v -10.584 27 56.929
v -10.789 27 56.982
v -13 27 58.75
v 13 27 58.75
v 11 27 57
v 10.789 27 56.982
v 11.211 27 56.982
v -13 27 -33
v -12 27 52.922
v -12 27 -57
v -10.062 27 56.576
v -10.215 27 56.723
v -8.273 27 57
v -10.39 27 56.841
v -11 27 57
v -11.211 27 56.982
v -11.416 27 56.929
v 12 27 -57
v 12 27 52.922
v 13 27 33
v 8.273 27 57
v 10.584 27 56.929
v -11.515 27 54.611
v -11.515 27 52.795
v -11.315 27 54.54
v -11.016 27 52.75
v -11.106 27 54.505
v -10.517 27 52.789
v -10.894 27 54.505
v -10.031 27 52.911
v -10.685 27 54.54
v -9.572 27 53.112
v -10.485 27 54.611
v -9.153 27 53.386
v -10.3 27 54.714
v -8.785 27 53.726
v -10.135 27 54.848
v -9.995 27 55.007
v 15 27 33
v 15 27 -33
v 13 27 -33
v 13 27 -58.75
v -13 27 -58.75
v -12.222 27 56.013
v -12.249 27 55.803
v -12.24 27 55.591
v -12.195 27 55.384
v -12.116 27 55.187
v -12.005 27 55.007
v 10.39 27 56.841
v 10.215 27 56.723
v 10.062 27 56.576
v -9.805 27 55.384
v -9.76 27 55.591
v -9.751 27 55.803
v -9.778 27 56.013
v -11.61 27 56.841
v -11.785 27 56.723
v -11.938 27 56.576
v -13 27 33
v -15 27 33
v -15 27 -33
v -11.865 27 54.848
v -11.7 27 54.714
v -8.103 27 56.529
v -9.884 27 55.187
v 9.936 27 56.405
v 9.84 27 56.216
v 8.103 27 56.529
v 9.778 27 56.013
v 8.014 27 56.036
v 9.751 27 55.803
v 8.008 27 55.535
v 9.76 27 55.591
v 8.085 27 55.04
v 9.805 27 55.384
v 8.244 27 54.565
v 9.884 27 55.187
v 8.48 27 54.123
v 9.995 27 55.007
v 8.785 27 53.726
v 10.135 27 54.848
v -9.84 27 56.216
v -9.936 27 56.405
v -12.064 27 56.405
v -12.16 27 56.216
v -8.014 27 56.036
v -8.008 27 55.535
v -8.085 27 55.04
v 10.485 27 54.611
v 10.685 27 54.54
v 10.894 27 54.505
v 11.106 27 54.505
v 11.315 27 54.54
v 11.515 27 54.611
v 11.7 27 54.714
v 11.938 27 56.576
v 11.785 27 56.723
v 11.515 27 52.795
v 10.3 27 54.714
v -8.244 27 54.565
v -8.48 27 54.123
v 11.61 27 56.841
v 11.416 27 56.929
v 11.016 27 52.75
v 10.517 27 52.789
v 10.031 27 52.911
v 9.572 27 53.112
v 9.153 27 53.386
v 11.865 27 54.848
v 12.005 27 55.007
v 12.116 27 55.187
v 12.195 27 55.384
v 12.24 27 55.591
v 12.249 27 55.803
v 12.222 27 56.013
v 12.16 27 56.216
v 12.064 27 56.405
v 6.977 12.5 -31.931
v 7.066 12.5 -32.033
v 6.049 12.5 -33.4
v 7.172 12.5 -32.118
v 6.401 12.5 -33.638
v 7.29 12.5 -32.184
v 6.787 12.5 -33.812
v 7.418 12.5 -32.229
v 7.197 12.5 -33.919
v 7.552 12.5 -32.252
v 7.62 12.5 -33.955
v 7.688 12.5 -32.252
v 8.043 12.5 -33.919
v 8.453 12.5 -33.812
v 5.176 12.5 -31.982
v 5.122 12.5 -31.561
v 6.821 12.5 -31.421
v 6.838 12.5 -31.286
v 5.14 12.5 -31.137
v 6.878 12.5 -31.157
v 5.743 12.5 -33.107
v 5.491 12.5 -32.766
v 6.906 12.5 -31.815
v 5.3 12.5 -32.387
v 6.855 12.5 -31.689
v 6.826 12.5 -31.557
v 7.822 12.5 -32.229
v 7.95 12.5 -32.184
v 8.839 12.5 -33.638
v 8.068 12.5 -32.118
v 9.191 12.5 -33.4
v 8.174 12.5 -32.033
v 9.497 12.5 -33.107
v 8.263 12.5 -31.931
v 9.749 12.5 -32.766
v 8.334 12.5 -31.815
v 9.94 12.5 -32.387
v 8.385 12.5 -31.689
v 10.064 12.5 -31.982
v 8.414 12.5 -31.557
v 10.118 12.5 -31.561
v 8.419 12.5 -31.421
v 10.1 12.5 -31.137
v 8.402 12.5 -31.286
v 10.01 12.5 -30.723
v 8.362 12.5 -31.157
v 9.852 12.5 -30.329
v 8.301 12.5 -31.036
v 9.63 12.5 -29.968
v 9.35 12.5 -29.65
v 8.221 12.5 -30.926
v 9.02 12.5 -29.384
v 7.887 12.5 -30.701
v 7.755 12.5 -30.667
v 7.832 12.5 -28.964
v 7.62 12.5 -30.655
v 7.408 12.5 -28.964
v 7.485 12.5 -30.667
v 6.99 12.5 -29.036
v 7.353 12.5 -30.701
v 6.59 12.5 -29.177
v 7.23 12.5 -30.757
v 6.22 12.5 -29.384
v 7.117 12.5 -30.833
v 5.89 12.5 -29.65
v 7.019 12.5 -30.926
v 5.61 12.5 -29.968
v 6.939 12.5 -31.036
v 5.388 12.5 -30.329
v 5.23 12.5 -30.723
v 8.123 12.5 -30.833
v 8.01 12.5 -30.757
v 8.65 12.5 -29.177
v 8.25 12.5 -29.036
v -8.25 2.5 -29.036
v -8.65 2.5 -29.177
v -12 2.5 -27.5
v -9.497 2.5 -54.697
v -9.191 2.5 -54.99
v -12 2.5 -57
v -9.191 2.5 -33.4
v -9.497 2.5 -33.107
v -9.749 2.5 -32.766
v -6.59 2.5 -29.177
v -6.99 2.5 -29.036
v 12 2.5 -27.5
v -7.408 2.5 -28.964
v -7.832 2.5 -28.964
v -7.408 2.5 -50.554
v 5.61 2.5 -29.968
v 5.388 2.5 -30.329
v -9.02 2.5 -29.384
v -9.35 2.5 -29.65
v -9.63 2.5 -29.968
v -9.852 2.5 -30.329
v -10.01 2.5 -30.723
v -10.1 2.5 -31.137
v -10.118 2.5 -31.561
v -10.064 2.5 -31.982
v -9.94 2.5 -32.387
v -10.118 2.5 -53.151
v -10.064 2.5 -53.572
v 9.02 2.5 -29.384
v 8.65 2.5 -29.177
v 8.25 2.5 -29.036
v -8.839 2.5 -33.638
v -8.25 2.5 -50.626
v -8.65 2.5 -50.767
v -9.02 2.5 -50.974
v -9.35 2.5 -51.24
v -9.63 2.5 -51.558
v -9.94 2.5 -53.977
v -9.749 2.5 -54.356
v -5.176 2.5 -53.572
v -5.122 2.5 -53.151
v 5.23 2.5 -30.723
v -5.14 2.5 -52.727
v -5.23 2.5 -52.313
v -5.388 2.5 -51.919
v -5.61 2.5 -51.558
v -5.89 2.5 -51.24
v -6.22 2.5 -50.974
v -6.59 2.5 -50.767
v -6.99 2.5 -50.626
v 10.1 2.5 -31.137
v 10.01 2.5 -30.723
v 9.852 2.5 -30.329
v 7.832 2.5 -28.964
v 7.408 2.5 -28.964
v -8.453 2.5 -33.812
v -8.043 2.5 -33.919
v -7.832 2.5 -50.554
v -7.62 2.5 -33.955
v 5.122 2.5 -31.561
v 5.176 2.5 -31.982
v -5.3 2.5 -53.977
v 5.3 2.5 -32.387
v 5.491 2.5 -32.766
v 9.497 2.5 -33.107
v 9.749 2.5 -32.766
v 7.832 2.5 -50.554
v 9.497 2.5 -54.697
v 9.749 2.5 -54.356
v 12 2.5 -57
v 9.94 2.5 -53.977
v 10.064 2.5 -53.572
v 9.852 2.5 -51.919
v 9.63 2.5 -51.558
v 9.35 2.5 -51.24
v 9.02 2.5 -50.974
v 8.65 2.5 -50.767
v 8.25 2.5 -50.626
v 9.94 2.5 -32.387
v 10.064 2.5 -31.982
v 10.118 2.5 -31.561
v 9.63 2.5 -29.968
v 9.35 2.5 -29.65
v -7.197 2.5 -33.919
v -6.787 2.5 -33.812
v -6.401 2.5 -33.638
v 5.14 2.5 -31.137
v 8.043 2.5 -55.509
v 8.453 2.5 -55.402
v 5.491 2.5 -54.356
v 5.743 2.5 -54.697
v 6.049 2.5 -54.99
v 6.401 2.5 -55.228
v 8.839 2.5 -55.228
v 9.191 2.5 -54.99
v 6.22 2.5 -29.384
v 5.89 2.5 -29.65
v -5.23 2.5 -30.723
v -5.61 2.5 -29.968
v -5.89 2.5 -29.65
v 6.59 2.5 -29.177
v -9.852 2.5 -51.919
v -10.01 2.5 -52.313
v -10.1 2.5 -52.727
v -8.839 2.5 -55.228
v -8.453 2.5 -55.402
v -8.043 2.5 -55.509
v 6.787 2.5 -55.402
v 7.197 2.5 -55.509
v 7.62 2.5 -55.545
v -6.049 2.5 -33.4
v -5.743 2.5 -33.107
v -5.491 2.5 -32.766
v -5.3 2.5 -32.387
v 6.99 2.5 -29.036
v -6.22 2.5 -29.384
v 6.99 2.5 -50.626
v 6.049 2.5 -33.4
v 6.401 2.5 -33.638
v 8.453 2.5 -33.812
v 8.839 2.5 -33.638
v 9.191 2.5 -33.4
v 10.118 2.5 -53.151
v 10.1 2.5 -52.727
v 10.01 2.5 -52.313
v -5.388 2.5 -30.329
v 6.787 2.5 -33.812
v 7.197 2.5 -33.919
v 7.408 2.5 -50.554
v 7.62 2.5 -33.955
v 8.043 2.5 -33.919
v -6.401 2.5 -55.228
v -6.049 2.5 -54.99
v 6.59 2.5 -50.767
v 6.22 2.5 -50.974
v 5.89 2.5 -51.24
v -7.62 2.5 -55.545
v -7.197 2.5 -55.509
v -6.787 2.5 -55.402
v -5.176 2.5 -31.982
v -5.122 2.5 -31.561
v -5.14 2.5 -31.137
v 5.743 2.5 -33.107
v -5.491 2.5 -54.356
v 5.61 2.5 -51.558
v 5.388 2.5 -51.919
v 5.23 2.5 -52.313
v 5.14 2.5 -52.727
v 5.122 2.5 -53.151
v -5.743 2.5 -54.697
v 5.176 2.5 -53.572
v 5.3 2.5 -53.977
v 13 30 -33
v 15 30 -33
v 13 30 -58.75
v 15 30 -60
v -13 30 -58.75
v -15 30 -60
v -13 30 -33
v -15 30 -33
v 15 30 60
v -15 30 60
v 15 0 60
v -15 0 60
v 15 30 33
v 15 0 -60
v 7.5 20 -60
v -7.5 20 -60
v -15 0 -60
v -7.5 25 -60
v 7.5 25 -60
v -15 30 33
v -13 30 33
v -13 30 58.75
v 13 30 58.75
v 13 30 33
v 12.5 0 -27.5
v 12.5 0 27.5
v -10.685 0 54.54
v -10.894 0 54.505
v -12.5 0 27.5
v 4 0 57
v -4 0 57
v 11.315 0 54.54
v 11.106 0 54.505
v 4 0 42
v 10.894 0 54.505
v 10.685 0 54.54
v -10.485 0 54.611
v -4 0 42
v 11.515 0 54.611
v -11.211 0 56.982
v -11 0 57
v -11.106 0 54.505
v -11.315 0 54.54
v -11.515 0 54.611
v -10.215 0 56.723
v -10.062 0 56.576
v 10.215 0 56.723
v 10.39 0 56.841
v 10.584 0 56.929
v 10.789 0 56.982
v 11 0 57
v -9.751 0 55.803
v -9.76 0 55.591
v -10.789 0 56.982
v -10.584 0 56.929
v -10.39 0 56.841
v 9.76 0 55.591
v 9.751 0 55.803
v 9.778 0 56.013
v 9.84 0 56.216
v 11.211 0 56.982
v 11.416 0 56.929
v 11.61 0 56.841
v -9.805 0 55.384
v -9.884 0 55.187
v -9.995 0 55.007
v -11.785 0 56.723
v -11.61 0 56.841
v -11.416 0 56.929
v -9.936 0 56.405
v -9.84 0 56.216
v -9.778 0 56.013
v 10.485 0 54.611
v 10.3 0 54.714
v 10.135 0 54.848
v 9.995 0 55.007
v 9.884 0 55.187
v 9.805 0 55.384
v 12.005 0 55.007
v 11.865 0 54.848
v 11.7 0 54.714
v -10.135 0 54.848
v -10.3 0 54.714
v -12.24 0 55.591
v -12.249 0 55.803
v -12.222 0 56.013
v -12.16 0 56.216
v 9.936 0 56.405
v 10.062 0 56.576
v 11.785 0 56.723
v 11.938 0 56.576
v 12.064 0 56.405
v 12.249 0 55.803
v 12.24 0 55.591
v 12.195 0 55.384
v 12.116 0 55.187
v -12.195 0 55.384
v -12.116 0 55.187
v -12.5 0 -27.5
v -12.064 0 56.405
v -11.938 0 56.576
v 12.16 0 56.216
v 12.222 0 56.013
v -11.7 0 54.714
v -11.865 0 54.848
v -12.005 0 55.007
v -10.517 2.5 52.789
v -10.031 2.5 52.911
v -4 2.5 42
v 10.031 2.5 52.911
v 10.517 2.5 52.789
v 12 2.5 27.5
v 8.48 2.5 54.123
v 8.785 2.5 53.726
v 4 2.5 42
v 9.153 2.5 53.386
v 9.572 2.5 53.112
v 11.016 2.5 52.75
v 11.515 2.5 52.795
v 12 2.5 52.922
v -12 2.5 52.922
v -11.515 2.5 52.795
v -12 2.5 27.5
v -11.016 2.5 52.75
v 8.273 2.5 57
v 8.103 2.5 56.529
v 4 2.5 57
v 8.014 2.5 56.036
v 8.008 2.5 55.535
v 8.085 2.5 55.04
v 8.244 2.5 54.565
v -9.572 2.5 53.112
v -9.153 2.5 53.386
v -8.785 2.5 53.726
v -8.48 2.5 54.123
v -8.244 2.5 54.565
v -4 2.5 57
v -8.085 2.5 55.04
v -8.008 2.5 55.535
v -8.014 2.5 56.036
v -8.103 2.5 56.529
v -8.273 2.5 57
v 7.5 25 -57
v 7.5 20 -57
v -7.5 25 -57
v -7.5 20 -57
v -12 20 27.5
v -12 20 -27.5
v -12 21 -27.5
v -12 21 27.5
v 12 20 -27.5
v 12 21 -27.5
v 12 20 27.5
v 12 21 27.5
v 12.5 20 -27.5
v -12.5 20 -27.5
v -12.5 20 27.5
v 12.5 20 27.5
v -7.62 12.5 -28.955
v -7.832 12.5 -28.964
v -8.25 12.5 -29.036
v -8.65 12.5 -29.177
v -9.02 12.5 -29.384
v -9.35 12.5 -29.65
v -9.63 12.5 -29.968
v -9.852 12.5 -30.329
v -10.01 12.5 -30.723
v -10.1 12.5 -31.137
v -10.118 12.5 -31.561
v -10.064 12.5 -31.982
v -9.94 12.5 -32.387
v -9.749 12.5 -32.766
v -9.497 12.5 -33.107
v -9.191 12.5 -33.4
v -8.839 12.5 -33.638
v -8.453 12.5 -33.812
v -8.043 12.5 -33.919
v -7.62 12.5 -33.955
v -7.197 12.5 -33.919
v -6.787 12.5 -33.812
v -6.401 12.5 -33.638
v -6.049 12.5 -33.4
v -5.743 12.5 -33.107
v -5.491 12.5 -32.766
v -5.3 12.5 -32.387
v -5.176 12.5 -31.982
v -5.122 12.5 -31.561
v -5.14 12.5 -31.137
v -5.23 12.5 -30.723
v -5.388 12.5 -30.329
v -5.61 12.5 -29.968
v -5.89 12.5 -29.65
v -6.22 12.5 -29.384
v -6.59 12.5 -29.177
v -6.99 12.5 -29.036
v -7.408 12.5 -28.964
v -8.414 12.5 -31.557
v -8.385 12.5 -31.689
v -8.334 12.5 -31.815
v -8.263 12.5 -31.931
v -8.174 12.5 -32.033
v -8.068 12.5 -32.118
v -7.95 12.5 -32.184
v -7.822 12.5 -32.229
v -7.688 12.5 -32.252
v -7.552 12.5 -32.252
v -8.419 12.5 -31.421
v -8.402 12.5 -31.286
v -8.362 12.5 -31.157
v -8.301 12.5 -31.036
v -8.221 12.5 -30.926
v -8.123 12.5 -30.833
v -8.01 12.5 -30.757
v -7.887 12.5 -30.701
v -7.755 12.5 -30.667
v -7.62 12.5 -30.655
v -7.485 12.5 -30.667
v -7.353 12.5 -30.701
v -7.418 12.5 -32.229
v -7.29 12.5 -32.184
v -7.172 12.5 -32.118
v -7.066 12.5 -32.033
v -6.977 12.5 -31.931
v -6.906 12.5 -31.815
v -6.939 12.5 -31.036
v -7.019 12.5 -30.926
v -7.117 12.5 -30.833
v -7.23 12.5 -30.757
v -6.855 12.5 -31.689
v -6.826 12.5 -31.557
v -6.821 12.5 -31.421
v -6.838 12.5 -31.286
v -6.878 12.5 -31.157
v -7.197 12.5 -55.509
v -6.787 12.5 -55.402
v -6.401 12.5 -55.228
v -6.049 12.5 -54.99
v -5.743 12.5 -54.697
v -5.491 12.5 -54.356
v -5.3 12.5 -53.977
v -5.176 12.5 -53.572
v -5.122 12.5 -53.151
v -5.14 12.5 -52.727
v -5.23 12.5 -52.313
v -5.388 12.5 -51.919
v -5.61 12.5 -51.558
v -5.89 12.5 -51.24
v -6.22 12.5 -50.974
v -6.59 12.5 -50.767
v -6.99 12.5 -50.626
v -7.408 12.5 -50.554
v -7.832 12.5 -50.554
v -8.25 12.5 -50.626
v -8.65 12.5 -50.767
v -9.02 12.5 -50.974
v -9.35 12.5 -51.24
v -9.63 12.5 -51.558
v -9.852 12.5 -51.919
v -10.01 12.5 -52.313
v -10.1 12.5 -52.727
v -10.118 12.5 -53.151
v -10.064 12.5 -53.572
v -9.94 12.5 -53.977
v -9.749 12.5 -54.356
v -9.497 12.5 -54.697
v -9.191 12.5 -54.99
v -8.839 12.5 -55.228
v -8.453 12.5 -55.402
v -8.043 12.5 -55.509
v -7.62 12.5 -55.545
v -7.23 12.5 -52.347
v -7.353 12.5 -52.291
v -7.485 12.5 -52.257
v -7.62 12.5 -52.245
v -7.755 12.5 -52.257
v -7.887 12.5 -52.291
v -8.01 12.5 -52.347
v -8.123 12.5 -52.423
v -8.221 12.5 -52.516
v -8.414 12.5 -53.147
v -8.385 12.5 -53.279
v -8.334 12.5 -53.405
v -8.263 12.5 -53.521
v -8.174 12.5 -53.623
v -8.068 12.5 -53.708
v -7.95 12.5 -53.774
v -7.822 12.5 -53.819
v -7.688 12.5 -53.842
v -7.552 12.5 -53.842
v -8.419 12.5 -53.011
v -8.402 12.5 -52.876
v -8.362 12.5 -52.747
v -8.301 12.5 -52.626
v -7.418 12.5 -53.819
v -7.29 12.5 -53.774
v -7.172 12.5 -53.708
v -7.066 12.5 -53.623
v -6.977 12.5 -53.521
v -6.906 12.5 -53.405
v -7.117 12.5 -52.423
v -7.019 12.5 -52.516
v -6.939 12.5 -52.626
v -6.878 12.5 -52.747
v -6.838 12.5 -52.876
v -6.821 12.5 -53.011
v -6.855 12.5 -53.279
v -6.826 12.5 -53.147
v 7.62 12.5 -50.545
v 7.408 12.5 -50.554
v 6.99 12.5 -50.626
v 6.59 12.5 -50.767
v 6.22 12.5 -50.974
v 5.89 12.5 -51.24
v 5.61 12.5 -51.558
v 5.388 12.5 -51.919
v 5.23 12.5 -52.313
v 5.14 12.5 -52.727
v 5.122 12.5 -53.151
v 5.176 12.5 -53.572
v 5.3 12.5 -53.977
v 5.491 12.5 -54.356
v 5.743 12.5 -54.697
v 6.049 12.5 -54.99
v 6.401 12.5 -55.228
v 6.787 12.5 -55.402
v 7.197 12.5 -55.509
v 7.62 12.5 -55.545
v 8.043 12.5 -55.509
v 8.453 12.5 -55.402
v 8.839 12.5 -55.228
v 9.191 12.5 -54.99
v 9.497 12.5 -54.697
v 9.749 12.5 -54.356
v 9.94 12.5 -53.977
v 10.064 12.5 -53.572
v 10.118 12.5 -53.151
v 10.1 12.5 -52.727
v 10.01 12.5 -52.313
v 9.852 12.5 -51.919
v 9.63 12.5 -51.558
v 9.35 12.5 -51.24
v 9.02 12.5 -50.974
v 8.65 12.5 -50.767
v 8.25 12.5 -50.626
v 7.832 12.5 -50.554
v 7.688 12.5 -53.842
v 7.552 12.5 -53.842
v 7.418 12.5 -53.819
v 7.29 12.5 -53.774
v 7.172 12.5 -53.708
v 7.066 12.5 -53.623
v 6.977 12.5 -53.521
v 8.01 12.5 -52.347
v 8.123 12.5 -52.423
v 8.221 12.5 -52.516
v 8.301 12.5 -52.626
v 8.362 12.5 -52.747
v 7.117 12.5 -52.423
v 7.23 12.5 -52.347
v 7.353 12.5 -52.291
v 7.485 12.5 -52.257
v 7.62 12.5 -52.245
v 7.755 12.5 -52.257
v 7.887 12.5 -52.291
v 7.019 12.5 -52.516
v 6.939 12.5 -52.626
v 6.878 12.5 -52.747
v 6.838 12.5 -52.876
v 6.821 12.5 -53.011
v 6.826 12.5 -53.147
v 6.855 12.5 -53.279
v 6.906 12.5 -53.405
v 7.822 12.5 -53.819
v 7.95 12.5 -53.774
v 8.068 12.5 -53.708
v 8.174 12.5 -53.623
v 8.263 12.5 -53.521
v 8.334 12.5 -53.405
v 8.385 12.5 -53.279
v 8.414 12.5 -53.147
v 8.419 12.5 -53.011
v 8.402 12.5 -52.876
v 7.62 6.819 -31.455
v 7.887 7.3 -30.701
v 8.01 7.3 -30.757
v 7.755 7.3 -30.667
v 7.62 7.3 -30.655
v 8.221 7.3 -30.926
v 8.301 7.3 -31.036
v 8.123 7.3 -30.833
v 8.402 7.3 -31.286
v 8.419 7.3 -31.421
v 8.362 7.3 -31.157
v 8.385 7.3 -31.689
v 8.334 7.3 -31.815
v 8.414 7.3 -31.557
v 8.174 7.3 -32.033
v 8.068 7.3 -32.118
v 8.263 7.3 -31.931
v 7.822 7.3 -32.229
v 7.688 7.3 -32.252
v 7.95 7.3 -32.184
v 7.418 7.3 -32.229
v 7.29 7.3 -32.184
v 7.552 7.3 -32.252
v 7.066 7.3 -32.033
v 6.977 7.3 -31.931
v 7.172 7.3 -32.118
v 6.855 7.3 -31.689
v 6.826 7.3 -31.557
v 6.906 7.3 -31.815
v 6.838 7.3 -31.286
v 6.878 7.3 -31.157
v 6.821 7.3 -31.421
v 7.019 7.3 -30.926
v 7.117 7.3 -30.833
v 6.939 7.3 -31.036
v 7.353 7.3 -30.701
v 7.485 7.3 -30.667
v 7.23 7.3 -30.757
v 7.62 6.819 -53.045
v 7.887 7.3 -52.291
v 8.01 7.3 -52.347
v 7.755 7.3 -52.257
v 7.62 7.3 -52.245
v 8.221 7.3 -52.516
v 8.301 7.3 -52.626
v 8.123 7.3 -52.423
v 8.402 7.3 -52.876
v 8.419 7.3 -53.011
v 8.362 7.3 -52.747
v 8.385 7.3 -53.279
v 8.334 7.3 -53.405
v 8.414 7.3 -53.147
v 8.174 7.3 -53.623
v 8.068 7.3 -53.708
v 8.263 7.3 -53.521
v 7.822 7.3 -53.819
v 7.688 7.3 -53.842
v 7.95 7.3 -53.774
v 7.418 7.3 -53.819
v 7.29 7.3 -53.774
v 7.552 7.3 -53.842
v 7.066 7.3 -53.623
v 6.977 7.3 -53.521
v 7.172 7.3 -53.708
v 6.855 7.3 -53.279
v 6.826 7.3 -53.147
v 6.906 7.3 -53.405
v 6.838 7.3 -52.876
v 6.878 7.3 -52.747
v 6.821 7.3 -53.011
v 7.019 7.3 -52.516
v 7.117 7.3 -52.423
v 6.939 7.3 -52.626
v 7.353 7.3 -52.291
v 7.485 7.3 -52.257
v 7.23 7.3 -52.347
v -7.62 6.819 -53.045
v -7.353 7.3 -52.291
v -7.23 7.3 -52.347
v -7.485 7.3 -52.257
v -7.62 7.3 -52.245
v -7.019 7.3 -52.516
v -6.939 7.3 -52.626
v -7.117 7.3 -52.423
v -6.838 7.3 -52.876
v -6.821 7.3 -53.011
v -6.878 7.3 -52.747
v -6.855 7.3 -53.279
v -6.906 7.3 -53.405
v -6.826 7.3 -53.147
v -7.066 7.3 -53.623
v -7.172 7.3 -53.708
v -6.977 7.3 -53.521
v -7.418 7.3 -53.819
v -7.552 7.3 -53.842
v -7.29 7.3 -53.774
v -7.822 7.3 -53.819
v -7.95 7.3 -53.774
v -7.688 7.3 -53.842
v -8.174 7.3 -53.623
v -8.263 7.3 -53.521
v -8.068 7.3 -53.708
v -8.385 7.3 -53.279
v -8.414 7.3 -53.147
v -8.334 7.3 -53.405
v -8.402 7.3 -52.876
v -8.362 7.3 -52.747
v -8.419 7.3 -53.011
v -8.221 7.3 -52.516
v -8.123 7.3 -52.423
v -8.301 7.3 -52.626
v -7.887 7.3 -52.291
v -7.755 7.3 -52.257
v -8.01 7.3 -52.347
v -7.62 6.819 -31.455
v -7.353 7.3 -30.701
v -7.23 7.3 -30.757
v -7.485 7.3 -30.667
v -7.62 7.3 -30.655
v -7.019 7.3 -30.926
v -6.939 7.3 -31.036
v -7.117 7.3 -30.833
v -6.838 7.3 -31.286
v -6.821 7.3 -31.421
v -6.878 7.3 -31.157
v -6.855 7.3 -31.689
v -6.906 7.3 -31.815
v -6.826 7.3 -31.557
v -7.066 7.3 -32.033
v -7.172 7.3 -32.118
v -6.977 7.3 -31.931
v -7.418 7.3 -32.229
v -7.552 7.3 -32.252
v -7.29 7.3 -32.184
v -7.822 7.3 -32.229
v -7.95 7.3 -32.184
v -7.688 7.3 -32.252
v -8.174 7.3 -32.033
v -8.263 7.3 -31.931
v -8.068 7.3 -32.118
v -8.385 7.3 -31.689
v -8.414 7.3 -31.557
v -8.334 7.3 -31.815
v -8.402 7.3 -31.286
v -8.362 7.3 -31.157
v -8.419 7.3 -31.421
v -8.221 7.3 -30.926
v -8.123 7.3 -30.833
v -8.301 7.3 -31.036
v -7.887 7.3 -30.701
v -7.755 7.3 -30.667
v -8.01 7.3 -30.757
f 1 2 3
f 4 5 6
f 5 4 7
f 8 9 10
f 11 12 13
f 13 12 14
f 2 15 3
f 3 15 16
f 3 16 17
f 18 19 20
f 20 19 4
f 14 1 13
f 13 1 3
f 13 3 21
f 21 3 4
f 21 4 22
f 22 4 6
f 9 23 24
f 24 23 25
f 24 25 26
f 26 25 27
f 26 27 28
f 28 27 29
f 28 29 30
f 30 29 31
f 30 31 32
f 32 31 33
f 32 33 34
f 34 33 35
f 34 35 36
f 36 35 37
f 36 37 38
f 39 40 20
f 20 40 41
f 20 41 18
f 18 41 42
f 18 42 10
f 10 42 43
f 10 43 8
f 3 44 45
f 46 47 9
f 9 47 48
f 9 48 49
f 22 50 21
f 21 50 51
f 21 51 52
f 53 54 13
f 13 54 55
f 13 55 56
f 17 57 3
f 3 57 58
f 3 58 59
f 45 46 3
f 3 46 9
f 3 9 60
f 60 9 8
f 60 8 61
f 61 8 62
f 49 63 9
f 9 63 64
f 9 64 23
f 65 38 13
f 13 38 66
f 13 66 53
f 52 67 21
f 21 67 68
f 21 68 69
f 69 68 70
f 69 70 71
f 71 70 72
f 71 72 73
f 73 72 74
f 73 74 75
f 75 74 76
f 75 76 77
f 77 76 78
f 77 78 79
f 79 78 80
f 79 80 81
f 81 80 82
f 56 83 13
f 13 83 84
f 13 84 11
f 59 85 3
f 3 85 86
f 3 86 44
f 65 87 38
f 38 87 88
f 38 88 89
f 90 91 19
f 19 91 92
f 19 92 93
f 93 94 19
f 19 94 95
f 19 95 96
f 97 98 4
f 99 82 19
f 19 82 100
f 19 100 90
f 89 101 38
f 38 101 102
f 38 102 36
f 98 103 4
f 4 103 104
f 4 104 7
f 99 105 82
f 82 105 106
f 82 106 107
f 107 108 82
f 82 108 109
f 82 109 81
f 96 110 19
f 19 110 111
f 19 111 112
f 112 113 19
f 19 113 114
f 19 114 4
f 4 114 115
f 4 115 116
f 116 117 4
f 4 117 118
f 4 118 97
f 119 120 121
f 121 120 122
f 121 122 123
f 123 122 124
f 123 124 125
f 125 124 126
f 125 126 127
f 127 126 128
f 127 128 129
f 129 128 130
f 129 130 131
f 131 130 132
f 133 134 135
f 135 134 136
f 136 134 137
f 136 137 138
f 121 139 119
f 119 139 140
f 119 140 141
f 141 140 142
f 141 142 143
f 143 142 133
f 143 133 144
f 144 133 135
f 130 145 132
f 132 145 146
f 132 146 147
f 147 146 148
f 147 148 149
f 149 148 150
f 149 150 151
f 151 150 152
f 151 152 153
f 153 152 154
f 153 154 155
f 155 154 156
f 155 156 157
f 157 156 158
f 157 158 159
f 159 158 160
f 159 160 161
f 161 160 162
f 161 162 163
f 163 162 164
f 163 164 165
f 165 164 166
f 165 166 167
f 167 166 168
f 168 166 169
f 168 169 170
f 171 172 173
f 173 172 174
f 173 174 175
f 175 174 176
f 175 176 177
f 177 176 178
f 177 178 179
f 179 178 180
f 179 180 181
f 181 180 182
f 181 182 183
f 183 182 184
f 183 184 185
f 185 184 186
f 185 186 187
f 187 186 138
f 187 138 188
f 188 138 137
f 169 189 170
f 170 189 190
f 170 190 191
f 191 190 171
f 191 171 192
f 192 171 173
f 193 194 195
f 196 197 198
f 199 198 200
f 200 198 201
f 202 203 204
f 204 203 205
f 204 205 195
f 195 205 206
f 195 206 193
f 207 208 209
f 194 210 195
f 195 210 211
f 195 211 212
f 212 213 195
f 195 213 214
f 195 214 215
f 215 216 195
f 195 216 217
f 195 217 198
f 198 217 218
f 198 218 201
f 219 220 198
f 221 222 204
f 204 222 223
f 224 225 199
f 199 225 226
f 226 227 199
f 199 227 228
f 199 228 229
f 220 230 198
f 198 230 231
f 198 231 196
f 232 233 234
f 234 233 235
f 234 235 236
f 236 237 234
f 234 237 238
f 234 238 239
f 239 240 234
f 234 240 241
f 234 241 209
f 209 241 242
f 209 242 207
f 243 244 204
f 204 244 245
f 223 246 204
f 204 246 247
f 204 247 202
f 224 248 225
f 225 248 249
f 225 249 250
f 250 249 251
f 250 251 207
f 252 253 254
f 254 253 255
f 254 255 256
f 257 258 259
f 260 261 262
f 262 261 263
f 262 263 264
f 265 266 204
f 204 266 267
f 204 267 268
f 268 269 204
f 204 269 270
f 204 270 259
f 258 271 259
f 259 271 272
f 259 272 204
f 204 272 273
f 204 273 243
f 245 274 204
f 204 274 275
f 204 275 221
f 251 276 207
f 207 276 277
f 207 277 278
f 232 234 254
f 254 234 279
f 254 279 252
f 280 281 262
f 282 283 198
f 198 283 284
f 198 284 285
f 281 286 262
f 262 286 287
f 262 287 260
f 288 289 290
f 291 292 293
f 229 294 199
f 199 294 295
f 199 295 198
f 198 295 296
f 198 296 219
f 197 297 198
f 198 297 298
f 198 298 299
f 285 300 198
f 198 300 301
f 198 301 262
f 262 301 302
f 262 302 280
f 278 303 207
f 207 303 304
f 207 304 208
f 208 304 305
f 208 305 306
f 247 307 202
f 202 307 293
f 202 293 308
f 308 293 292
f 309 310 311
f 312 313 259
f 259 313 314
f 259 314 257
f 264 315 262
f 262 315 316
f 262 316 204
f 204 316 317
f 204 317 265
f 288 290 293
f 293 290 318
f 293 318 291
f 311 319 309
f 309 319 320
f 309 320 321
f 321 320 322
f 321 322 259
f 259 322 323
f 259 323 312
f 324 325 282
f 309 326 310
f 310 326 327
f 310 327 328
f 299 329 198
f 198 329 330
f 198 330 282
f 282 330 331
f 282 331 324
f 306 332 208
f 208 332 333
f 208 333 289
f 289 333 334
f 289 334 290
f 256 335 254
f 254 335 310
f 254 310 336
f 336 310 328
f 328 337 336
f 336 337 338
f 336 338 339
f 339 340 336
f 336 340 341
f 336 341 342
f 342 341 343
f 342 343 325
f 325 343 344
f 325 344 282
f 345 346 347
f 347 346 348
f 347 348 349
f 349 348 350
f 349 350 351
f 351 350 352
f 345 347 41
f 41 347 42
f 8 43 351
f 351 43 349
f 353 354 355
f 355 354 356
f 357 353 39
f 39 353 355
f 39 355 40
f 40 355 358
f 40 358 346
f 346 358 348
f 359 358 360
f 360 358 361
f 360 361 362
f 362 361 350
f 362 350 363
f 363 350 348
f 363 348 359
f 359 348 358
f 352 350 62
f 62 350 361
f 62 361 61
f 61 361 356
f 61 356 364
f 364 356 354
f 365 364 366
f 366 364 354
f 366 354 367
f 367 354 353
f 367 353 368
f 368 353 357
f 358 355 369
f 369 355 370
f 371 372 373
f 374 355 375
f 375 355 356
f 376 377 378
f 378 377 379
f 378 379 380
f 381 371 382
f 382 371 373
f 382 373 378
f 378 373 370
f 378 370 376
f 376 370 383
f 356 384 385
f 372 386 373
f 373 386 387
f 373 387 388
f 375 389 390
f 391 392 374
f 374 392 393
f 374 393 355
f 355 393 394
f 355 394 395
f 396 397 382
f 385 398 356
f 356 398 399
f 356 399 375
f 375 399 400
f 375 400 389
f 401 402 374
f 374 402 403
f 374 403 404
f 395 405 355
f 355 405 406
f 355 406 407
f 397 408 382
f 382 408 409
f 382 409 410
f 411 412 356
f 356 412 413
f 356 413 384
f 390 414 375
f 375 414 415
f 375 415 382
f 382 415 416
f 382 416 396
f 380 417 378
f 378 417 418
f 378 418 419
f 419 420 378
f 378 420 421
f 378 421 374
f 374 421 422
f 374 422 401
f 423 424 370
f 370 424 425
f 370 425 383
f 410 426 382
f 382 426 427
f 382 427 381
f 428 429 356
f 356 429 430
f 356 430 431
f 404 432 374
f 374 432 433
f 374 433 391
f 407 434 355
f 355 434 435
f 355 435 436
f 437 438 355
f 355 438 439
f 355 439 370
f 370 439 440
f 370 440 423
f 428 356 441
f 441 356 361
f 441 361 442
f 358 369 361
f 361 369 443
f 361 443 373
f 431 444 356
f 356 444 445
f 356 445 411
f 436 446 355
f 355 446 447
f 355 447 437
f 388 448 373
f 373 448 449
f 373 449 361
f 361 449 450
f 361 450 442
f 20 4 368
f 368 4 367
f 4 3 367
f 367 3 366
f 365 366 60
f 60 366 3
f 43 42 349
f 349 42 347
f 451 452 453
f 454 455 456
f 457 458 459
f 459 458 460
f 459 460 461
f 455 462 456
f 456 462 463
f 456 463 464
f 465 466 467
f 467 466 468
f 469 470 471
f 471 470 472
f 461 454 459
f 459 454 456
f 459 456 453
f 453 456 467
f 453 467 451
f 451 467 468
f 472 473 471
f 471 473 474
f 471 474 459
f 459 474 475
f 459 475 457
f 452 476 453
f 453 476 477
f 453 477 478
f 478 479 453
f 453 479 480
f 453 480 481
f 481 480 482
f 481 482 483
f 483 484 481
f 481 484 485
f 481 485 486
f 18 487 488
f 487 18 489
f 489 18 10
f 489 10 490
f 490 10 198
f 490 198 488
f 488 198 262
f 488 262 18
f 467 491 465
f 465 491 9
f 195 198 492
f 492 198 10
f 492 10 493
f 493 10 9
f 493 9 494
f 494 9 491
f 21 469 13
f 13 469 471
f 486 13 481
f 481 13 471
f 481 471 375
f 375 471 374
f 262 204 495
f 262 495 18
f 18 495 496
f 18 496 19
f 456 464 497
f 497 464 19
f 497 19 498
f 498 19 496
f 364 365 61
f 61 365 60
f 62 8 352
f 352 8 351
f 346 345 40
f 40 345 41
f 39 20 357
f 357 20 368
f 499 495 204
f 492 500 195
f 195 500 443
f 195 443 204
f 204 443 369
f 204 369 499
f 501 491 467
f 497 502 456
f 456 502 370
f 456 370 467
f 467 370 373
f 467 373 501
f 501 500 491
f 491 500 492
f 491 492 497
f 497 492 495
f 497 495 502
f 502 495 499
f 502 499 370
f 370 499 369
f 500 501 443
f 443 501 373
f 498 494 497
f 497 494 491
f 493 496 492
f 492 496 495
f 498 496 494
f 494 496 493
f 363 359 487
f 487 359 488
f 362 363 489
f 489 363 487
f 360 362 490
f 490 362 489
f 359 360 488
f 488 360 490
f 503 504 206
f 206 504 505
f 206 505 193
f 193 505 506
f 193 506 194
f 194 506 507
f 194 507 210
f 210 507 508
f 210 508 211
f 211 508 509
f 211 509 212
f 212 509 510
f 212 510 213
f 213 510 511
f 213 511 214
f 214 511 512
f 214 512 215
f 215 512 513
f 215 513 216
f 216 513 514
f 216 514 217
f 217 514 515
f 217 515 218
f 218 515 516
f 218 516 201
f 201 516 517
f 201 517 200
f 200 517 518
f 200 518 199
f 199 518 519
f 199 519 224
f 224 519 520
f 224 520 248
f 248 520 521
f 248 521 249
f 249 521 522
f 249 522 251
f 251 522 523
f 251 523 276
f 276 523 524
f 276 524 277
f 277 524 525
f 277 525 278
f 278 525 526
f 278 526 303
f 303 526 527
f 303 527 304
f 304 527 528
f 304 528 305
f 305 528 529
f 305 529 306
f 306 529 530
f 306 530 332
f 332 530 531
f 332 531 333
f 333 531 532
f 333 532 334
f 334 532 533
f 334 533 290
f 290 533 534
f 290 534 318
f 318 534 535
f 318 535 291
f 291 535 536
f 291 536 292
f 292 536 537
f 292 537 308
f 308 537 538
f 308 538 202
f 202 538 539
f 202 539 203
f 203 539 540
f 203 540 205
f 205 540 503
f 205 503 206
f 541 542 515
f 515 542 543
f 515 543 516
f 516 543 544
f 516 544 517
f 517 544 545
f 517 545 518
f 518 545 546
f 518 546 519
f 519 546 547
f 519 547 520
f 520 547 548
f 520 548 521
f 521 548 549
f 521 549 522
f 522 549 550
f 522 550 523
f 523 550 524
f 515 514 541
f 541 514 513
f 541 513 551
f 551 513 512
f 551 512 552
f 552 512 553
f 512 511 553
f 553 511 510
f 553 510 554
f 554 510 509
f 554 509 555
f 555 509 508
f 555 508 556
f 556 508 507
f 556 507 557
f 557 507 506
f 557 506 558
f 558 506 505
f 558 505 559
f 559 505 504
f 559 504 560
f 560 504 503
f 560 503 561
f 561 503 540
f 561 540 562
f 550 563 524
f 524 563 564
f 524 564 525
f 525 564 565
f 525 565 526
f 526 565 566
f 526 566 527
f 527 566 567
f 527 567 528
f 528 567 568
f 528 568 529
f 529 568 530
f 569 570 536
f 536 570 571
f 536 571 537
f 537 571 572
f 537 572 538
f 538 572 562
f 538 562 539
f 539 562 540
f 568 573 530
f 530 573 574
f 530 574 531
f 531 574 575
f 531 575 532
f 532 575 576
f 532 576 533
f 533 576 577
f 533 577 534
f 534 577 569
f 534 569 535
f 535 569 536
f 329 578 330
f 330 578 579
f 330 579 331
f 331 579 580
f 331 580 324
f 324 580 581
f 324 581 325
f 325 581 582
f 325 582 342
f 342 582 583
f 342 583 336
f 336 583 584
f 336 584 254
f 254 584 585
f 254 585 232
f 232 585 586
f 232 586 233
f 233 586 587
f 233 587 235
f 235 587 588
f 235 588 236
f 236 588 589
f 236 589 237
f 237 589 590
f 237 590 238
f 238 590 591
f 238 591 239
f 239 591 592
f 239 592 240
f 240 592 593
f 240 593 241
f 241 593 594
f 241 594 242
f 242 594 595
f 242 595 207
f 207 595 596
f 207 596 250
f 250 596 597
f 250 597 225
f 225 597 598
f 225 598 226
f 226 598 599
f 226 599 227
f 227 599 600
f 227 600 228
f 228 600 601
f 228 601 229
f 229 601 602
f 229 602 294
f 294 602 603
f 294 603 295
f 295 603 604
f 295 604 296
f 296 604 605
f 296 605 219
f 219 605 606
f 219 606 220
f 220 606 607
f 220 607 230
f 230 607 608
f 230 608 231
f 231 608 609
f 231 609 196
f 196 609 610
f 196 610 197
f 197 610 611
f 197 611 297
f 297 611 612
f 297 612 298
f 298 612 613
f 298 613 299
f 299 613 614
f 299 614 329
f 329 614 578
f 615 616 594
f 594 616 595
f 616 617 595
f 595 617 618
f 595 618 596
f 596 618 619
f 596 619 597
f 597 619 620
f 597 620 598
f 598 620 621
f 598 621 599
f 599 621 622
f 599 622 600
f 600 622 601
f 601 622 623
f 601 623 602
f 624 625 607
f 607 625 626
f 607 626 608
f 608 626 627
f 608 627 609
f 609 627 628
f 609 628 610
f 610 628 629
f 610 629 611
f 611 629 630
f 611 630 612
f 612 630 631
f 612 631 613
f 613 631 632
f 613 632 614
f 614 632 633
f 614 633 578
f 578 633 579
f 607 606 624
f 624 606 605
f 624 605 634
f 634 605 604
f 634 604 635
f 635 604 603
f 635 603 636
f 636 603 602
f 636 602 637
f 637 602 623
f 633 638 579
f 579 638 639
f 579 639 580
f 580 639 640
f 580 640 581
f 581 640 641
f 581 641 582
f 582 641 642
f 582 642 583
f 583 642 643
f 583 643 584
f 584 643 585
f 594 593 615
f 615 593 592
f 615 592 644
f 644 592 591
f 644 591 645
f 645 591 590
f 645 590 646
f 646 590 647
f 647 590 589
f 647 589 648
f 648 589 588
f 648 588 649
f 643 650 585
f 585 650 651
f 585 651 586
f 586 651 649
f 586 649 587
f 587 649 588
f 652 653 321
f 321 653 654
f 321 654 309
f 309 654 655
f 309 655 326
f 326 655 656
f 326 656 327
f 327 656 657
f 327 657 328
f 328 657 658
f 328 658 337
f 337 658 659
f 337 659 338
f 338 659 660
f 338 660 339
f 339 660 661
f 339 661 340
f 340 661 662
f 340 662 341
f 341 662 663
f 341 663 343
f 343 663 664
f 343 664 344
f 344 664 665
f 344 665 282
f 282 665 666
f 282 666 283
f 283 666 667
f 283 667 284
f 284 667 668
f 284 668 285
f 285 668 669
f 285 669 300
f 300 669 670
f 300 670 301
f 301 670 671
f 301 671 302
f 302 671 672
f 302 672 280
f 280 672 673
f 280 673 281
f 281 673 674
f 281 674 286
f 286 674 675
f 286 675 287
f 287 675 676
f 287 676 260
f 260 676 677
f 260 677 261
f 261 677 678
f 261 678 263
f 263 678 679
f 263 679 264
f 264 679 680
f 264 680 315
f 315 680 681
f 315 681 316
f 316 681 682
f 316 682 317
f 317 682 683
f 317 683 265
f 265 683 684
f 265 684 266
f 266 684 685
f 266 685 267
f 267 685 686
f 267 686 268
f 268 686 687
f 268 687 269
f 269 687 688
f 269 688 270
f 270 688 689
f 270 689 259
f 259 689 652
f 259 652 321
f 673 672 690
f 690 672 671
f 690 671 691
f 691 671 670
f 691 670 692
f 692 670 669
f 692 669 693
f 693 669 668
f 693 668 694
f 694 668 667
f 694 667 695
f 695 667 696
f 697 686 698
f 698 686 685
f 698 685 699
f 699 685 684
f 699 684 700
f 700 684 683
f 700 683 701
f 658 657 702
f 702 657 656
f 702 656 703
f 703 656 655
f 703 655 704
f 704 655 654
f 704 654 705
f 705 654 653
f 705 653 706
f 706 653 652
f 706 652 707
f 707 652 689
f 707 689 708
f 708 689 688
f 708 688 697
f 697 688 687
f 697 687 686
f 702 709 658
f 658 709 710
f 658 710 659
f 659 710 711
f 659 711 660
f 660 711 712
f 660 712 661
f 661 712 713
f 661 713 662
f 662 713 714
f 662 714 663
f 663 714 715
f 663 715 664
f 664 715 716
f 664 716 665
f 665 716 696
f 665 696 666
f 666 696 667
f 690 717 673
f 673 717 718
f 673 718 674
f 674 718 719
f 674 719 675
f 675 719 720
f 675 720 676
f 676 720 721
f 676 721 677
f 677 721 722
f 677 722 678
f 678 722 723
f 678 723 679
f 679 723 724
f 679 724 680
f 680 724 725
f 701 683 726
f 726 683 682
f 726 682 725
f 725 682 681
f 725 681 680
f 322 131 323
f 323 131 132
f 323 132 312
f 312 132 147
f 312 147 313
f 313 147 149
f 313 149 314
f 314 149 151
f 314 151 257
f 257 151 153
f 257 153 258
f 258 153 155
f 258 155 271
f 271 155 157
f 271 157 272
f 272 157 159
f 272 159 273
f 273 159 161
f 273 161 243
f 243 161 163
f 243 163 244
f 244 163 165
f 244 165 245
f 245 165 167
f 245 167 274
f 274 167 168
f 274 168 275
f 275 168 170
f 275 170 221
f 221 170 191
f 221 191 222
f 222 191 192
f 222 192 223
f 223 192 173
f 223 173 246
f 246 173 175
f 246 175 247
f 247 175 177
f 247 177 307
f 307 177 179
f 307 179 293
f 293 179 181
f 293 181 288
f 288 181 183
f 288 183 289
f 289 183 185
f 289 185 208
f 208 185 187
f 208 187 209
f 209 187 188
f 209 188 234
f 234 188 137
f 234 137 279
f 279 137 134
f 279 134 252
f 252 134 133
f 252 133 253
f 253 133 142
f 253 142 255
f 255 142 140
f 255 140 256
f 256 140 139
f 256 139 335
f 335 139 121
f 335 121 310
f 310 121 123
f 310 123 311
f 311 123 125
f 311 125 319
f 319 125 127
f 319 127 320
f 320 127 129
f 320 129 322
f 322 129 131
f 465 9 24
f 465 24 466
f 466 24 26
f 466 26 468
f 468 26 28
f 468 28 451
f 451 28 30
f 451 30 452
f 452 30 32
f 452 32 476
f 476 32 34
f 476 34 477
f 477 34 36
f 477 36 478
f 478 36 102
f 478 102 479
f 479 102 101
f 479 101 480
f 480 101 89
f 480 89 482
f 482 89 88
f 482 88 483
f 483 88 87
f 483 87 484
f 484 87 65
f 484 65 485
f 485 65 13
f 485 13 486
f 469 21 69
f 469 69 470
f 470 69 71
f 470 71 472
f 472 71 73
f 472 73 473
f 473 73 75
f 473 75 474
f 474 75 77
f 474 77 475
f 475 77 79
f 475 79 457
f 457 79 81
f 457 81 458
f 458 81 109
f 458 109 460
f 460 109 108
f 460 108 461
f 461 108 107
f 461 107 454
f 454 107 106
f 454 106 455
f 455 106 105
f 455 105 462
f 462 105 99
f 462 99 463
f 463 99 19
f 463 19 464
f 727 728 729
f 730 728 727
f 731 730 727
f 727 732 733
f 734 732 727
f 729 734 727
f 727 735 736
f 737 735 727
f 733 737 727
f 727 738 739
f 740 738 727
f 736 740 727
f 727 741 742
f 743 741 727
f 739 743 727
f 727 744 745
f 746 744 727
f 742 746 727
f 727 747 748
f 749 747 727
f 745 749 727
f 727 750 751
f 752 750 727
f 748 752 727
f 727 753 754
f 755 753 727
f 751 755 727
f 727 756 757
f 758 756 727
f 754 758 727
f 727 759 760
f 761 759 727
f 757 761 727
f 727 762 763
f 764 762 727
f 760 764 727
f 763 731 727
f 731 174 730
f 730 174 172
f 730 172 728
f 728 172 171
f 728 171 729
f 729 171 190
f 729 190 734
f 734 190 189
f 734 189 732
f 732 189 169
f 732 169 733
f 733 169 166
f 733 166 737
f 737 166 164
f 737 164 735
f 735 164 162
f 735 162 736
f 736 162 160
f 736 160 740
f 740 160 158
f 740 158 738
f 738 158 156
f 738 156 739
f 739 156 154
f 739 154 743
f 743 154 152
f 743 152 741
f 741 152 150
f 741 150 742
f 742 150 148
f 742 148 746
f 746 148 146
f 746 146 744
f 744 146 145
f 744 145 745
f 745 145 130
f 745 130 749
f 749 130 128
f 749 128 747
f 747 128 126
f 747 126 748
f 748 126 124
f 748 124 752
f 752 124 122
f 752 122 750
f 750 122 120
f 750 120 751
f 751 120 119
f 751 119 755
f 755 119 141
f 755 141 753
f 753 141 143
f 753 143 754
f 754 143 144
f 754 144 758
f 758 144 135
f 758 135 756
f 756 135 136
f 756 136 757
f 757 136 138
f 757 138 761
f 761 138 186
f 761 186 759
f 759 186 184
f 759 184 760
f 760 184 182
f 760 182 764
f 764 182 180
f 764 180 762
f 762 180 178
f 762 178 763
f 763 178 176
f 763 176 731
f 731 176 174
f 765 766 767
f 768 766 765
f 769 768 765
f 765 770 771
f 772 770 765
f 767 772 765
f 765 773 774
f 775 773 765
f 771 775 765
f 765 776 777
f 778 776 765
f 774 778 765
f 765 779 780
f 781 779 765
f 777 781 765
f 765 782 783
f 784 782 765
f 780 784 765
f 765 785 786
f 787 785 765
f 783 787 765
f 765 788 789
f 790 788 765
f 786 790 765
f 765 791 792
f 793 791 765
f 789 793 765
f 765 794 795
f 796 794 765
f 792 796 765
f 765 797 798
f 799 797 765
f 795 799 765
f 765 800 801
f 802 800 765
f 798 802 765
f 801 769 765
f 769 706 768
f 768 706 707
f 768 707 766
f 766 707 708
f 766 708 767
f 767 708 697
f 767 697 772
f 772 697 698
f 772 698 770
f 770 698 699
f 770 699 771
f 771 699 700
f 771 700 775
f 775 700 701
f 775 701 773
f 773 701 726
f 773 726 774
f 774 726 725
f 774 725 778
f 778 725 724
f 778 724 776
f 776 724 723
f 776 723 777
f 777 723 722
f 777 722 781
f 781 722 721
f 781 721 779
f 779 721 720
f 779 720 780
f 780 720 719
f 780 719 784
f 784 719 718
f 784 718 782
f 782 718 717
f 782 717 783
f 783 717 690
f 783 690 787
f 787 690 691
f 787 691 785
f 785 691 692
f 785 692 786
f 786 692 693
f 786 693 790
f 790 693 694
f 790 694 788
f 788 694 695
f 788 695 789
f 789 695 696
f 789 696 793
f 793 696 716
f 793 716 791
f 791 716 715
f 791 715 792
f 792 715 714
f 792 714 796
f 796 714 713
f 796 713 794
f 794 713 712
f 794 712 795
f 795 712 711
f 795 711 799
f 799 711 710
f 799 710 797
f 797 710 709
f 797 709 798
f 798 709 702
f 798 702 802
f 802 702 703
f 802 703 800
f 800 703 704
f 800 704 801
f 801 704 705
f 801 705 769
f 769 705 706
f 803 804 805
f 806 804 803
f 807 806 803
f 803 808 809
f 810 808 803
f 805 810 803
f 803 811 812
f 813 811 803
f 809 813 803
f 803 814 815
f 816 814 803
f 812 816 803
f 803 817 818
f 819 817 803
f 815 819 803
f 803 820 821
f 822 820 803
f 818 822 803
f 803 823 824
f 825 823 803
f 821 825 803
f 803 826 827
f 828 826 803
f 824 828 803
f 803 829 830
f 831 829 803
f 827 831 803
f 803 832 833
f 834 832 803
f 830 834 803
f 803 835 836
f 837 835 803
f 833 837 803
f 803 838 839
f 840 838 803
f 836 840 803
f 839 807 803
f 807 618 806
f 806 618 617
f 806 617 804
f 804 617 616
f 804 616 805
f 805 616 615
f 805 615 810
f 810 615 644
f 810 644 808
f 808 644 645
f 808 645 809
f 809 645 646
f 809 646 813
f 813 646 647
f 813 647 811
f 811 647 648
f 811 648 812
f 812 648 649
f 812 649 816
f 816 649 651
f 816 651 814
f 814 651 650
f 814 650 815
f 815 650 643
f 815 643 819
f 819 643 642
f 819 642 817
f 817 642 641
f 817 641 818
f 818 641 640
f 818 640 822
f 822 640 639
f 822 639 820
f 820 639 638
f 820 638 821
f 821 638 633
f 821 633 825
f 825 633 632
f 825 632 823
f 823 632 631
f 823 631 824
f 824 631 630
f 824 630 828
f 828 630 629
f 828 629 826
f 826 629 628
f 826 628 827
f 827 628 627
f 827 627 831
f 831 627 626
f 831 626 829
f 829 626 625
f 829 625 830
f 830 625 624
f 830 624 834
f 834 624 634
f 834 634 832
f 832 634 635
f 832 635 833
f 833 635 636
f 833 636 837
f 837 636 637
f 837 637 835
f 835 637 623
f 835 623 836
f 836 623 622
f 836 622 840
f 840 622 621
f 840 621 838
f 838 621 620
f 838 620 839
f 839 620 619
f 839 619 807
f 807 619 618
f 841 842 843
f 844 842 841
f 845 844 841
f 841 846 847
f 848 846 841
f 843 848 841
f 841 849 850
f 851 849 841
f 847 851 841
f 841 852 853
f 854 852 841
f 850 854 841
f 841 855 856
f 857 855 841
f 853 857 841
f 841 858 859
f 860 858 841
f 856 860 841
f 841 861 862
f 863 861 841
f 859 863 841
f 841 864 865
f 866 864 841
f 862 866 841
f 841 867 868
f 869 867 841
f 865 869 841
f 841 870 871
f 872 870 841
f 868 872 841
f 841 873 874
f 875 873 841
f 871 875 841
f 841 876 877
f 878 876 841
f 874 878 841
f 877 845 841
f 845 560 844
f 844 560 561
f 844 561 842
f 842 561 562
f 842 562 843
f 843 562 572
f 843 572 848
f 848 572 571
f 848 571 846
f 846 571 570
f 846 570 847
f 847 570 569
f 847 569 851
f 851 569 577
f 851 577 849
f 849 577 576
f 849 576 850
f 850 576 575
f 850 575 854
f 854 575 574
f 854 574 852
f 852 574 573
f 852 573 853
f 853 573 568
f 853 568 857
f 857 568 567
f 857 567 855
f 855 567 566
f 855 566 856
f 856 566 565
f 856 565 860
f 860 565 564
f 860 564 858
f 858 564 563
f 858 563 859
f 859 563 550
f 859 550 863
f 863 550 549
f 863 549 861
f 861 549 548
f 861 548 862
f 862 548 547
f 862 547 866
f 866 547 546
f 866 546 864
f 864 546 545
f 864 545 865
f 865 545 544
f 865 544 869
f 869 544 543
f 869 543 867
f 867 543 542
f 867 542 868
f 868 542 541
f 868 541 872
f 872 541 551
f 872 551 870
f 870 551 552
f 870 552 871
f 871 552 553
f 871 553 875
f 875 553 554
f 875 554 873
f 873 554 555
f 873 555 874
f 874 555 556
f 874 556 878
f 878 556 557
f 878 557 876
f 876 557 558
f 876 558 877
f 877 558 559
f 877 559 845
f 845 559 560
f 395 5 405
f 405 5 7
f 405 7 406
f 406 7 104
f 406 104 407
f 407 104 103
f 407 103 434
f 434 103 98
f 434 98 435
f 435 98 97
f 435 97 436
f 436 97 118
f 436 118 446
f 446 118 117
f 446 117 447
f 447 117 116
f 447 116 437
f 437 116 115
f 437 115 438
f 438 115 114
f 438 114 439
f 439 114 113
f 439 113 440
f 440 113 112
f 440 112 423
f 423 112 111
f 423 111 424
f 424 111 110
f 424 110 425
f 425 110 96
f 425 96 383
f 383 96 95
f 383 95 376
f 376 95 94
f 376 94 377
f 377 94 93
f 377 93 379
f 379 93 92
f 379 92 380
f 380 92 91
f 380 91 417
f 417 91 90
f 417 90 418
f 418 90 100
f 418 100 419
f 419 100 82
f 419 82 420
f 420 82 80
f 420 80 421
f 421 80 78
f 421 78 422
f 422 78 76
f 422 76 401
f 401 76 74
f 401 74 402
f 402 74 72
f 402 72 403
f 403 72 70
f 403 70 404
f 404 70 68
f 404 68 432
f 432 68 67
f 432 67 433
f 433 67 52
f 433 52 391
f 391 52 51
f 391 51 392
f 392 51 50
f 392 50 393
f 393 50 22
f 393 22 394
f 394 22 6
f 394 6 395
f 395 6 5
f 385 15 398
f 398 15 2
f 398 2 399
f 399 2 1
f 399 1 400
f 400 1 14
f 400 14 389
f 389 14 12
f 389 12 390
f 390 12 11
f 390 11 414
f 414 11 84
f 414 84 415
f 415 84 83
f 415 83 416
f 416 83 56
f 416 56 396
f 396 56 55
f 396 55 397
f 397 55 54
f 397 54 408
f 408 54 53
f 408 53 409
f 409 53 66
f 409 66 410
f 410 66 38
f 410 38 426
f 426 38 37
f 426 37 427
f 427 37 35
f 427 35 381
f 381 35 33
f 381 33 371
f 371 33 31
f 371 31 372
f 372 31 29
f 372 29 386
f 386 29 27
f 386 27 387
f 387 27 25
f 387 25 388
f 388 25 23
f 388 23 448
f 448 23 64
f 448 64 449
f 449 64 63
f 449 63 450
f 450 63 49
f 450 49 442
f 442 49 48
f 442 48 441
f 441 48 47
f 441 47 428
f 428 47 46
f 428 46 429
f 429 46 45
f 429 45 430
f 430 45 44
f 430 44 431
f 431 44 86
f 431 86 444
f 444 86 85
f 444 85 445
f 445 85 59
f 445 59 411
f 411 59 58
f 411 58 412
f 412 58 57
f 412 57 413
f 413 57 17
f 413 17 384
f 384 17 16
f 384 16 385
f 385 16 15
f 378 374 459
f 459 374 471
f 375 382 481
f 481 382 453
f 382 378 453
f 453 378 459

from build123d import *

# Parameters (mm, degrees)
SKETCH1_W                   = 30
SKETCH1_H                   = 120
BOSS_EXTRUDE1_DEPTH         = 30
SKETCH3_W                   = 24
SKETCH3_H                   = 114
CUT_EXTRUDE1_DEPTH          = 27.5
SKETCH4_W                   = 26
SKETCH4_H                   = 117.5
CUT_EXTRUDE2_DEPTH          = 3
SKETCH5_W                   = 66
SKETCH5_H                   = 3
CUT_EXTRUDE3_DEPTH          = 74.484692283
SKETCH6_W                   = 25
SKETCH6_H                   = 55
CUT_EXTRUDE4_DEPTH          = 20
SKETCH8_W                   = 24
SKETCH8_H                   = 55
BOSS_EXTRUDE2_DEPTH         = 1
SKETCH9_W                   = 15
SKETCH9_H                   = 5
CUT_EXTRUDE5_DEPTH          = 3
SKETCH10_R                  = 2.5
BOSS_EXTRUDE3_DEPTH         = 10
BOSS_EXTRUDE4_DEPTH         = 24.5
M2X0_4_TAPPED_HOLE1_D       = 1.6
M2X0_4_TAPPED_HOLE1_DEPTH   = 5.2
M2X0_4_TAPPED_HOLE1_TIP     = 0.480688495
TAP_DRILL_FOR_M3X0_5_TAP2_D = 2.5
SKETCH22_W                  = 8
SKETCH22_H                  = 15
CUT_EXTRUDE6_DEPTH          = 68.684931853


with BuildPart() as part:
    # Sketch1 → Boss-Extrude1 (new body)
    with BuildSketch(Plane(origin=(0, 0, 0), x_dir=(1, 0, 0), z_dir=(0, 1, 0))):
        Rectangle(SKETCH1_W, SKETCH1_H)
    extrude(amount=BOSS_EXTRUDE1_DEPTH)

    # Sketch3 → Cut-Extrude1 (cut)
    with BuildSketch(Plane(origin=(0, 30, 0), x_dir=(1, 0, 0), z_dir=(0, 1, 0))):
        Rectangle(SKETCH3_W, SKETCH3_H)
    extrude(amount=-CUT_EXTRUDE1_DEPTH, mode=Mode.SUBTRACT)

    # Sketch4 → Cut-Extrude2 (cut)
    with BuildSketch(Plane(origin=(0, 30, 0), x_dir=(1, 0, 0), z_dir=(0, 1, 0))):
        Rectangle(SKETCH4_W, SKETCH4_H)
    extrude(amount=-CUT_EXTRUDE2_DEPTH, mode=Mode.SUBTRACT)

    # Sketch5 → Cut-Extrude3 (cut, through all)
    with BuildSketch(Plane(origin=(15, 0, 0), x_dir=(0, 0, -1), z_dir=(1, 0, 0))):
        with Locations((0, 28.5)):
            Rectangle(SKETCH5_W, SKETCH5_H)
    extrude(amount=-CUT_EXTRUDE3_DEPTH, mode=Mode.SUBTRACT)

    # Sketch6 → Cut-Extrude4 (cut)
    with BuildSketch(Plane.XZ):
        Rectangle(SKETCH6_W, SKETCH6_H)
    extrude(amount=-CUT_EXTRUDE4_DEPTH, mode=Mode.SUBTRACT)

    # Sketch8 → Boss-Extrude2 (add)
    with BuildSketch(Plane.XZ.offset(-20)):
        Rectangle(SKETCH8_W, SKETCH8_H)
    extrude(amount=-BOSS_EXTRUDE2_DEPTH)

    # Sketch9 → Cut-Extrude5 (cut)
    with BuildSketch(Plane(origin=(0, 0, -60), x_dir=(-1, 0, 0), z_dir=(0, 0, -1))):
        with Locations((0, 22.5)):
            Rectangle(SKETCH9_W, SKETCH9_H)
    extrude(amount=-CUT_EXTRUDE5_DEPTH, mode=Mode.SUBTRACT)

    # Sketch10 → Boss-Extrude3 (add)
    with BuildSketch(Plane(origin=(0, 2.5, 0), x_dir=(1, 0, 0), z_dir=(0, 1, 0))):
        with Locations(Location((-7.62, 31.455, 0), (0, 0, 90))):
            Circle(SKETCH10_R)
        with Locations(Location((-7.62, 53.045, 0), (0, 0, 90))):
            Circle(SKETCH10_R)
        with Locations(Location((7.62, 53.045, 0), (0, 0, 90))):
            Circle(SKETCH10_R)
        with Locations(Location((7.62, 31.455, 0), (0, 0, 90))):
            Circle(SKETCH10_R)
    extrude(amount=BOSS_EXTRUDE3_DEPTH)

    # Sketch13 → Boss-Extrude4 (add)
    with BuildSketch(Plane(origin=(0, 27, 0), x_dir=(1, 0, 0), z_dir=(0, 1, 0))):
        with BuildLine():
            Line((-12, -52.921572875), (-12, -57))
            Line((-12, -57), (-8.272821971, -57))
            ThreePointArc((-8.272821971, -57), (-8.785462139, -53.726186258), (-12, -52.921572875))
        make_face()
        with BuildLine():
            Line((12, -57), (8.272821971, -57))
            ThreePointArc((8.272821971, -57), (8.785462139, -53.726186258), (12, -52.921572875))
            Line((12, -52.921572875), (12, -57))
        make_face()
    extrude(amount=-BOSS_EXTRUDE4_DEPTH)

    # M2x0.4 Tapped Hole1
    with Locations(Plane(origin=(0, 12.5, 0), x_dir=(1, 0, 0), z_dir=(0, 1, 0))):
        with Locations((-7.62, 31.455), (-7.62, 53.045), (7.62, 53.045), (7.62, 31.455)):
            Hole(M2X0_4_TAPPED_HOLE1_D / 2, depth=M2X0_4_TAPPED_HOLE1_DEPTH)
            with Locations((0, 0, -(M2X0_4_TAPPED_HOLE1_DEPTH + M2X0_4_TAPPED_HOLE1_TIP / 2))):  # 118° drill point
                Cone(0, M2X0_4_TAPPED_HOLE1_D / 2, M2X0_4_TAPPED_HOLE1_TIP, mode=Mode.SUBTRACT)

    # Tap Drill for M3x0.5 Tap2 (through all)
    with Locations(Plane(origin=(0, 27, 0), x_dir=(1, 0, 0), z_dir=(0, 1, 0))):
        with Locations((-11, -55.75), (11, -55.75)):
            Hole(TAP_DRILL_FOR_M3X0_5_TAP2_D / 2)

    # Sketch22 → Cut-Extrude6 (cut, through all)
    with BuildSketch(Plane(origin=(0, 2.5, 0), x_dir=(1, 0, 0), z_dir=(0, 1, 0))):
        with Locations((0, -49.5)):
            Rectangle(SKETCH22_W, SKETCH22_H)
    extrude(amount=-CUT_EXTRUDE6_DEPTH, mode=Mode.SUBTRACT)


solid = part.part
